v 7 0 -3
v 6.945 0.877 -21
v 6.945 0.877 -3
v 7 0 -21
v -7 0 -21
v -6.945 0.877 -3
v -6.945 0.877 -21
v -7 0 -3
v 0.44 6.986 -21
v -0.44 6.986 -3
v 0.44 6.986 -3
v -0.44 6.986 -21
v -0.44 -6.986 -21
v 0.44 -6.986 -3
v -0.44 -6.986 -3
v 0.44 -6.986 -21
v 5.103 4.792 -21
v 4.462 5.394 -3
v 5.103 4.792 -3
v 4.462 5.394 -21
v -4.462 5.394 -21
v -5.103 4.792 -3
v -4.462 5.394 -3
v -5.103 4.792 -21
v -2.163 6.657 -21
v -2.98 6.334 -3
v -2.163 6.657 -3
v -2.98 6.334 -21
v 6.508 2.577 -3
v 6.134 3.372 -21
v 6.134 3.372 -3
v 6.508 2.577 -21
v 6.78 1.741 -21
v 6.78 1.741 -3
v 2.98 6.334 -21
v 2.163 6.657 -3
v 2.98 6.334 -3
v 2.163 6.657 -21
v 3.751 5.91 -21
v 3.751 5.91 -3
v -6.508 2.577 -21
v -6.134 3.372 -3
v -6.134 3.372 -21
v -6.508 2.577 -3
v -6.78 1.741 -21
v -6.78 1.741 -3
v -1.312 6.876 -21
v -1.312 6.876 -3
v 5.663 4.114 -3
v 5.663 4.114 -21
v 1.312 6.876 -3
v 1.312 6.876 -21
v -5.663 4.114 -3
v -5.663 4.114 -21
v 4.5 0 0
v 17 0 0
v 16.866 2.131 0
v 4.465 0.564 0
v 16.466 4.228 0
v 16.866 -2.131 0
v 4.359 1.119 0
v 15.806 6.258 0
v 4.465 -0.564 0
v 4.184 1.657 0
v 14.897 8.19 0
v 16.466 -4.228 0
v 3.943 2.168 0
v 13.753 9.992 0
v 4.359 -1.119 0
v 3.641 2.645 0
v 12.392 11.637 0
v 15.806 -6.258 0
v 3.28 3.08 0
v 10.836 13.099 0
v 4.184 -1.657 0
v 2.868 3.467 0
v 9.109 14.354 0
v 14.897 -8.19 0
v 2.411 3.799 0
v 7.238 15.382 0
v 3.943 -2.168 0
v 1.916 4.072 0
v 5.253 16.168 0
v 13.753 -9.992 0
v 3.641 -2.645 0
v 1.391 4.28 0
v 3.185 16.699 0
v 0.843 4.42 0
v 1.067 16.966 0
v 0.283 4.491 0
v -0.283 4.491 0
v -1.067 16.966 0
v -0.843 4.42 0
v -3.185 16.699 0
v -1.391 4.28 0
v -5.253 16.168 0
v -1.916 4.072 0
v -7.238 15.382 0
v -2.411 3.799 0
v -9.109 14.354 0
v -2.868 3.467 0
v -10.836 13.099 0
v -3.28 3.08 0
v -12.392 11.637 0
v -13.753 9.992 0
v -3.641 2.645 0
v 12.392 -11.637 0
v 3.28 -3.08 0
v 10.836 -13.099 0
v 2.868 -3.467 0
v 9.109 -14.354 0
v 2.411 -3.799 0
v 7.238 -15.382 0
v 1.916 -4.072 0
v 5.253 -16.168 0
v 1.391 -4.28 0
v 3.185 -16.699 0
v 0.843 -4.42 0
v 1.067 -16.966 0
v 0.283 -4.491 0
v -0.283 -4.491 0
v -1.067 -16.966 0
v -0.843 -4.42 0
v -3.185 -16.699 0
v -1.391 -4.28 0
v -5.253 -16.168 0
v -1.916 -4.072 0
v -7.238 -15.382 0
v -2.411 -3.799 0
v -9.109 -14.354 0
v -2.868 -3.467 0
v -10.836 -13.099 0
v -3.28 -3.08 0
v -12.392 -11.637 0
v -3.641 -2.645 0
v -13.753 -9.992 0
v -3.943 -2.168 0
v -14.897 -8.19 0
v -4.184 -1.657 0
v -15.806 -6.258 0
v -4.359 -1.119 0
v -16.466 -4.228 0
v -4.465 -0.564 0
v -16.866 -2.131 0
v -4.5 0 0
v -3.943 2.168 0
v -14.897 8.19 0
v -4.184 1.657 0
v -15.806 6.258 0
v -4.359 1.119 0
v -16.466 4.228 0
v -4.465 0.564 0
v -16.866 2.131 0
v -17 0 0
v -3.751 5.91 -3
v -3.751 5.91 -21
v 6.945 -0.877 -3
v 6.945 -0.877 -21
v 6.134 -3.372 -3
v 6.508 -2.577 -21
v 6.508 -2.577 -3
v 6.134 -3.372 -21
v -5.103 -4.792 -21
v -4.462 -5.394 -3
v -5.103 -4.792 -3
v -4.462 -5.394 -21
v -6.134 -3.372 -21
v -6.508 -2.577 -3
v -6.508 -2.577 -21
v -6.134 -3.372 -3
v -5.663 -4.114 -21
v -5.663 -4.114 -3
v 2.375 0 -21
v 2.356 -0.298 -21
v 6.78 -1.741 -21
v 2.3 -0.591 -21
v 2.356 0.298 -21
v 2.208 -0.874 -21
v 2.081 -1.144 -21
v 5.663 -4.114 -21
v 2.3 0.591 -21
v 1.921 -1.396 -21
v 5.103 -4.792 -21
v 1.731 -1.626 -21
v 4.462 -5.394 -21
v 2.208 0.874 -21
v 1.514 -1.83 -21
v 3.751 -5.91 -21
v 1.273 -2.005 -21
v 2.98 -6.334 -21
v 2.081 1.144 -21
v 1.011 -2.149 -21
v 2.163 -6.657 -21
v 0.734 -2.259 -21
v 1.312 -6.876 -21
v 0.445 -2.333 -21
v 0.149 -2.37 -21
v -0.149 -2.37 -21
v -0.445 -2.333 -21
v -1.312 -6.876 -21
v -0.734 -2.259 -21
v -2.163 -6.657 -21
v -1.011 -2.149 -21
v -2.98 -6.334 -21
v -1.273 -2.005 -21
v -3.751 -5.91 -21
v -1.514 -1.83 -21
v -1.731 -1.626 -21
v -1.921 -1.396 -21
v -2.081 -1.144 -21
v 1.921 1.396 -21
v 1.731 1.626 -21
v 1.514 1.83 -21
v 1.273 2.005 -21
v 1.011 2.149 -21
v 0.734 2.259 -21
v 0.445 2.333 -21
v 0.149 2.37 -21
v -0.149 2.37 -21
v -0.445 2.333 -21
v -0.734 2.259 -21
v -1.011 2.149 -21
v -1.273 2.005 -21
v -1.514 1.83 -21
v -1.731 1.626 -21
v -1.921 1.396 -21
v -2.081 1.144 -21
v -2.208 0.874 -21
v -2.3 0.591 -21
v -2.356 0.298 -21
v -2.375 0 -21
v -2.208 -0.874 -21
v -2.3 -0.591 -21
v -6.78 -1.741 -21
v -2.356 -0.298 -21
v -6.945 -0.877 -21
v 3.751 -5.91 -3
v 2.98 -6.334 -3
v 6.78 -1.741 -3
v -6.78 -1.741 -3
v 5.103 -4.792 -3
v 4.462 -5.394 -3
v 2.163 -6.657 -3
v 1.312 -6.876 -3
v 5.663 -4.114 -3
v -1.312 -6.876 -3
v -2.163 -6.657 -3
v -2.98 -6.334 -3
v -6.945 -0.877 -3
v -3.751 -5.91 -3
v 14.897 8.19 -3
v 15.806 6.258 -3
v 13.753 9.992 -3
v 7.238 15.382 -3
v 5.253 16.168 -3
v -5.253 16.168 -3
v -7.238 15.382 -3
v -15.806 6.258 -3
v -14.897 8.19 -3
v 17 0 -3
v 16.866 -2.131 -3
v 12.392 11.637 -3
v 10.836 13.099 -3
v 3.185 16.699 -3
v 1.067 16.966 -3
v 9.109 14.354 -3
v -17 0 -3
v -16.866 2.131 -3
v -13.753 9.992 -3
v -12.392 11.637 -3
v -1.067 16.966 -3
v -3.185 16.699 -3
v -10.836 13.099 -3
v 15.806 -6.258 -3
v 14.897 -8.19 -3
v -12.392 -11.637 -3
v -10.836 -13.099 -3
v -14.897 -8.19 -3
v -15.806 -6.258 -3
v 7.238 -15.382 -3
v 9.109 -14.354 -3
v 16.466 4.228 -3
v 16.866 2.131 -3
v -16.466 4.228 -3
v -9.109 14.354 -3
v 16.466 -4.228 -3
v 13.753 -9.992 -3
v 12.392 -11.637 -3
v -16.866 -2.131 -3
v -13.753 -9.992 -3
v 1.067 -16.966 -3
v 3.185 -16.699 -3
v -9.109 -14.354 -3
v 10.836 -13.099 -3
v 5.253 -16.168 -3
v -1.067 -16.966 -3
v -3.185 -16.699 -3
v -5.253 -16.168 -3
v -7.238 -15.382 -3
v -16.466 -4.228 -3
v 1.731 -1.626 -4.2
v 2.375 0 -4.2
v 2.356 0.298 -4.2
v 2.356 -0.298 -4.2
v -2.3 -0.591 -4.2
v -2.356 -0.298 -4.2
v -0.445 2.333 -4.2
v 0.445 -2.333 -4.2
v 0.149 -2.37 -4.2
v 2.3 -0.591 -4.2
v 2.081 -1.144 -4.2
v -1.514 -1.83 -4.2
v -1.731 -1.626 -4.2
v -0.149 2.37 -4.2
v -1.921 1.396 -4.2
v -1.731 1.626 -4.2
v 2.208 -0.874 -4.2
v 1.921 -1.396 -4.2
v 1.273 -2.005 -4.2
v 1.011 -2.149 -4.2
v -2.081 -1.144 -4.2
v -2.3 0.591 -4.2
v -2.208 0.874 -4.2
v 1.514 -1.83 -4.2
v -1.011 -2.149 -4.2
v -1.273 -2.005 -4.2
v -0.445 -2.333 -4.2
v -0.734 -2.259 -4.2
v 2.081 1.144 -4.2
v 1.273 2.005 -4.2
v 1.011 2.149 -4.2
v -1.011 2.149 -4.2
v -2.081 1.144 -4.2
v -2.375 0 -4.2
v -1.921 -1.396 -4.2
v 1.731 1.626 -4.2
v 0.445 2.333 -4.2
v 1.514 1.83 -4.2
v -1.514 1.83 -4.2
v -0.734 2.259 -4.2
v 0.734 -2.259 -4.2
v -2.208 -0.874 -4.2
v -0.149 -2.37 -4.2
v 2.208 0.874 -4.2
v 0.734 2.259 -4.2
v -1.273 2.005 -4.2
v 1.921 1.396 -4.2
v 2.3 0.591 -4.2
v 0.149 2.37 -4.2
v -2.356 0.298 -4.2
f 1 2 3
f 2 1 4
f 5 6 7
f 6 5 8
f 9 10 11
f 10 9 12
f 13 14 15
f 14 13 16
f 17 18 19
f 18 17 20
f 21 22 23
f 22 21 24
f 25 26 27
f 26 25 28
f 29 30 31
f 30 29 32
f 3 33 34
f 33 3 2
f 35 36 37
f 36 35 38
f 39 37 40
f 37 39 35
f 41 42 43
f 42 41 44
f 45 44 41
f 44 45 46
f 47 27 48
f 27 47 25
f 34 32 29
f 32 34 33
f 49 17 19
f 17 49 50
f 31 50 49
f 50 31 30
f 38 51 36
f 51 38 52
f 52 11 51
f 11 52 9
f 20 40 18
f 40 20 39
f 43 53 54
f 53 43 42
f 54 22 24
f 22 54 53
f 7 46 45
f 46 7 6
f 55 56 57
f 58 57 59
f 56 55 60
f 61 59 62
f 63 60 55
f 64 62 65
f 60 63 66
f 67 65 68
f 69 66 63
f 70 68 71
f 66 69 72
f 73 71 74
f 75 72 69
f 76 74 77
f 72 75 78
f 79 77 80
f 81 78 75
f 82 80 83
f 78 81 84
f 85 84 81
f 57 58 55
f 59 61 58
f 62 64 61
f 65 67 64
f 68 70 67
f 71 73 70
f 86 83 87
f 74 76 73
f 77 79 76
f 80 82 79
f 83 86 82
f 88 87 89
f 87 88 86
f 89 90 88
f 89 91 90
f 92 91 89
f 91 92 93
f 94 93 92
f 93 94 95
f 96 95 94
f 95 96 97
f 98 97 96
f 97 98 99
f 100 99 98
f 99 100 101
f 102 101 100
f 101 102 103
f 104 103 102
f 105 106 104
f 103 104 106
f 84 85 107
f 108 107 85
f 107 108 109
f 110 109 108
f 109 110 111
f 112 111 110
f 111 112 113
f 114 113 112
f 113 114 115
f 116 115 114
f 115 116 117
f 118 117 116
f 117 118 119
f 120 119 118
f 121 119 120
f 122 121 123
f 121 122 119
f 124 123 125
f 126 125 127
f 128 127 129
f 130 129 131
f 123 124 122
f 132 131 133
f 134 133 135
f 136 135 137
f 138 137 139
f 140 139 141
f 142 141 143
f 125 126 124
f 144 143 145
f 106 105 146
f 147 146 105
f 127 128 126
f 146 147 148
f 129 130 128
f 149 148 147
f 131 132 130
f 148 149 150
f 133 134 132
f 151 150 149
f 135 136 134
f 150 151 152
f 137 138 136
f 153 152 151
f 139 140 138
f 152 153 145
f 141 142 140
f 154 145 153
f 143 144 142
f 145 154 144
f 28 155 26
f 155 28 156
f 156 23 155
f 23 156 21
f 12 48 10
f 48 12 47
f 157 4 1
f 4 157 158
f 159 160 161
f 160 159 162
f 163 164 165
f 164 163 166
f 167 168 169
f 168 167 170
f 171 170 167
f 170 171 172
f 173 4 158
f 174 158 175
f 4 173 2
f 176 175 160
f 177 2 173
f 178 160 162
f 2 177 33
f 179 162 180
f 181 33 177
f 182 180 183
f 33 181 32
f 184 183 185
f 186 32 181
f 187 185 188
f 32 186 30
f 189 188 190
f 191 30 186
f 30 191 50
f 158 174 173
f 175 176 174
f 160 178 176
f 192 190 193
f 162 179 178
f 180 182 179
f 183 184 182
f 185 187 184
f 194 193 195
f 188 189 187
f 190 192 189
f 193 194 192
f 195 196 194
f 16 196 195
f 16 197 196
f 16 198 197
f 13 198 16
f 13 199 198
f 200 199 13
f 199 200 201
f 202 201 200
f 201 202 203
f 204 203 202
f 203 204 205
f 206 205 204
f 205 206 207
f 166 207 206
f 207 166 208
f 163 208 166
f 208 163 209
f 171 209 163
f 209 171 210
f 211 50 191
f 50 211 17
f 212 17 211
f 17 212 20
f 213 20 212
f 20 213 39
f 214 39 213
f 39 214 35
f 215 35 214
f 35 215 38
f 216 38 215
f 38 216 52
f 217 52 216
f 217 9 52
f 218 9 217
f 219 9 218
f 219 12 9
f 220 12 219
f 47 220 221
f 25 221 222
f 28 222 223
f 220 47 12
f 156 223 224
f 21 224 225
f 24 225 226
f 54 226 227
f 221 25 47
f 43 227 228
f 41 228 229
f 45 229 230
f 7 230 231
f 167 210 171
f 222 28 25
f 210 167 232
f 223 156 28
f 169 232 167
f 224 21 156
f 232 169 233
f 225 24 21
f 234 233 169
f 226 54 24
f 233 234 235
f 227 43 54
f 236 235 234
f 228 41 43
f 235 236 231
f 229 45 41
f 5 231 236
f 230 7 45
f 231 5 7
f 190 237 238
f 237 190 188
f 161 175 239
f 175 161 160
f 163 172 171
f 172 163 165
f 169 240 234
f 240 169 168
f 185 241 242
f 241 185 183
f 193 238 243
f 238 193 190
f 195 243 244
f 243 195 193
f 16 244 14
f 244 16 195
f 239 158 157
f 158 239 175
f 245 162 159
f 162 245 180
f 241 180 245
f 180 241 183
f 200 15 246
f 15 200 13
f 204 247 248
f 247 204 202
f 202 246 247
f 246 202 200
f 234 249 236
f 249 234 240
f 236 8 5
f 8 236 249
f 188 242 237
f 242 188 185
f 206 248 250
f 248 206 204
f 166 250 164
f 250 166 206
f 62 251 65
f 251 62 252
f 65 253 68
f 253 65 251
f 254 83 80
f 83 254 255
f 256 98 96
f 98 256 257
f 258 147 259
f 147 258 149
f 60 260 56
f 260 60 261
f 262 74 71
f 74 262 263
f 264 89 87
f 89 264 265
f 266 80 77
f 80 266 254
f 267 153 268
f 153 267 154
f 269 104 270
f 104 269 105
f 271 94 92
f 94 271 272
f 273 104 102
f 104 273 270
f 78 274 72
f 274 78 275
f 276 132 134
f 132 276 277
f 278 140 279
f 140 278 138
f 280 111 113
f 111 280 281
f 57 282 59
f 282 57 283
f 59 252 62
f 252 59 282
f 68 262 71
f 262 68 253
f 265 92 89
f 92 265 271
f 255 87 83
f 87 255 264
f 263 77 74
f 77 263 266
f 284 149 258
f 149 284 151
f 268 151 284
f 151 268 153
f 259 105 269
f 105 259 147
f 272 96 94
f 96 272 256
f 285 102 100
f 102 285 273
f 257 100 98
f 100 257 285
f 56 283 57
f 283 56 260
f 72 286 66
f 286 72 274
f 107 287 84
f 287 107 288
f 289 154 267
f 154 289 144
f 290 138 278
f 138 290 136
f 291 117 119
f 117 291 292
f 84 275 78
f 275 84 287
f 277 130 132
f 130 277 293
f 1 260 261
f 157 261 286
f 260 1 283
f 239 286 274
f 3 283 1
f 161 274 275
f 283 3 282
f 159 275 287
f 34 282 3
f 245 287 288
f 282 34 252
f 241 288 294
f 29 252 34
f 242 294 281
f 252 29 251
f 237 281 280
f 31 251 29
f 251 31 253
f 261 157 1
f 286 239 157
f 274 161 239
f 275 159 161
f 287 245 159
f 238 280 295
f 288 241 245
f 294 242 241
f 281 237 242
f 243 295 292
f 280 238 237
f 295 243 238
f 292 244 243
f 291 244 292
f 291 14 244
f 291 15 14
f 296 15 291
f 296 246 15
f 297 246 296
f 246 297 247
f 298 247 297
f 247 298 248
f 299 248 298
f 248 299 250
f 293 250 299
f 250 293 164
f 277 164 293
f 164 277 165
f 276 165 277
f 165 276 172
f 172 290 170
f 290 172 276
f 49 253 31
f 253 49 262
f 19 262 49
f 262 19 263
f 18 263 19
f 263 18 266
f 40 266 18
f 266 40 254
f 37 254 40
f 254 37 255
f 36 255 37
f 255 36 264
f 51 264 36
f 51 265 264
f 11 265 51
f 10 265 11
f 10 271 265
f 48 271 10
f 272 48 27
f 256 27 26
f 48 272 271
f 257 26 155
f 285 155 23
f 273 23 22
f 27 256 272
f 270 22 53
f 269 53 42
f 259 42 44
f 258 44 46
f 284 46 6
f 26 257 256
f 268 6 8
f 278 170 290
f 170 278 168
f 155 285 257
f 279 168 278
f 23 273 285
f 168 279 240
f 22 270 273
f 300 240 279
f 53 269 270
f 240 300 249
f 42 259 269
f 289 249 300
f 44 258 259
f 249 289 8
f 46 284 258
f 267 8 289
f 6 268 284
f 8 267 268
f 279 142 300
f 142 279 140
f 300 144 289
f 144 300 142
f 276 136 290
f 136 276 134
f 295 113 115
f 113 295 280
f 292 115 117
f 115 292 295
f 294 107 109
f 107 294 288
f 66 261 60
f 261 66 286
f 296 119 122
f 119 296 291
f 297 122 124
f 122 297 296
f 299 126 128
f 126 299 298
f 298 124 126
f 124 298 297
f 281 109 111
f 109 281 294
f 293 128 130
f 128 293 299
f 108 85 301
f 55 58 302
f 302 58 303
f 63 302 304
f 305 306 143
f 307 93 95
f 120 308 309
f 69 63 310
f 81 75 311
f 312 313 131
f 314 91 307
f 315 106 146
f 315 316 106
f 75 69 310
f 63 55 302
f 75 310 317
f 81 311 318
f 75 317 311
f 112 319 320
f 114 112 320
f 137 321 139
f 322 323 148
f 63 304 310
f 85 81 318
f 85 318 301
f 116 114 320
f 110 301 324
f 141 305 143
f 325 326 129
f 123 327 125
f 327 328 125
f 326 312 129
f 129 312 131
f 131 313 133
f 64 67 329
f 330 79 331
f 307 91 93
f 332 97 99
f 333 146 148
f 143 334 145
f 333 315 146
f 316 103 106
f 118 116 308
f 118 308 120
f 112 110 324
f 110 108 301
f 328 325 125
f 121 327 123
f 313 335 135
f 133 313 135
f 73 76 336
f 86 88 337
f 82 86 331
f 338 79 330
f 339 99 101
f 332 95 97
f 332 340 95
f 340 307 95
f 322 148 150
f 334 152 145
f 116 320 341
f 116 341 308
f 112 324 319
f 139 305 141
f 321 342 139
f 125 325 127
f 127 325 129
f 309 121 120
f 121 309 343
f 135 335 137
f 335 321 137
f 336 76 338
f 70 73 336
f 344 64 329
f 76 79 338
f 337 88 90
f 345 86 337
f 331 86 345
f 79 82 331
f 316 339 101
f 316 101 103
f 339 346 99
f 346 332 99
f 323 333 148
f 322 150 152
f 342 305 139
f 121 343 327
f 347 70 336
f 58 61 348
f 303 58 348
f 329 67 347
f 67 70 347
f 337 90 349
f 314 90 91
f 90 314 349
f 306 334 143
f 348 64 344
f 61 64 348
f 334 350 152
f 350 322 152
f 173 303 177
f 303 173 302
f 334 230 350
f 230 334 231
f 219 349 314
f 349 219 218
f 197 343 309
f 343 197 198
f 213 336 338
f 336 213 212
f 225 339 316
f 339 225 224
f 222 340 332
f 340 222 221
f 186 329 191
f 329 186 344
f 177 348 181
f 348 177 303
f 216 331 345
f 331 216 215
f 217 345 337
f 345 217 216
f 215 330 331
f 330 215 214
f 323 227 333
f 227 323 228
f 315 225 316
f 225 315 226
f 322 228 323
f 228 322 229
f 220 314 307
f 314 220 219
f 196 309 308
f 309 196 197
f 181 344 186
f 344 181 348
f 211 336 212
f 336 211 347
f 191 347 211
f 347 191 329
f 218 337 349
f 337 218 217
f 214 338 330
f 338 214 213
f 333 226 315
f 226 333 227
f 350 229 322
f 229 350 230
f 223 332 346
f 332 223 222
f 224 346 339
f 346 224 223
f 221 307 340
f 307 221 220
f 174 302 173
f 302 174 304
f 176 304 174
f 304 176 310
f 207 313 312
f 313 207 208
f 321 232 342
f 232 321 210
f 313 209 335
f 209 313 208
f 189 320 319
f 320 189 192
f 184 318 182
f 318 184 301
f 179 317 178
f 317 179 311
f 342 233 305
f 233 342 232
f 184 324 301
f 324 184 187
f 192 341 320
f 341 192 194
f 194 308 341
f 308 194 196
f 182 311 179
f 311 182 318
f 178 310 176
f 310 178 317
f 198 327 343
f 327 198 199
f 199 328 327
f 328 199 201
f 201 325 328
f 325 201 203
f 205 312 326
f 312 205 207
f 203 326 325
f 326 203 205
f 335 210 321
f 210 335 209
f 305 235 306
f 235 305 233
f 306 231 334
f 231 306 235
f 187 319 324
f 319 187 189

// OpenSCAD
$fn = 50;


difference() {
	union() {
		translate(v = [0, 0, -21.0000000000]) {
			cylinder(h = 21, r = 7.0000000000);
		}
		translate(v = [0, 0, -3.0000000000]) {
			cylinder(h = 3, r = 17.0000000000);
		}
	}
	union() {
		translate(v = [0, 0, 0]) {
			rotate(a = [0, 0, 0]) {
				difference() {
					union() {
						#translate(v = [0, 0, -21.0000000000]) {
							cylinder(h = 21, r = 2.2500000000);
						}
						#translate(v = [0, 0, -4.2000000000]) {
							cylinder(h = 4.2000000000, r = 7.0000000000, r1 = 2.3750000000, r2 = 4.5000000000);
						}
						#translate(v = [0, 0, -21.0000000000]) {
							cylinder(h = 21, r = 2.3750000000);
						}
						#translate(v = [0, 0, -21.0000000000]) {
							cylinder(h = 21, r = 2.2500000000);
						}
					}
					union();
				}
			}
		}
	}
}
